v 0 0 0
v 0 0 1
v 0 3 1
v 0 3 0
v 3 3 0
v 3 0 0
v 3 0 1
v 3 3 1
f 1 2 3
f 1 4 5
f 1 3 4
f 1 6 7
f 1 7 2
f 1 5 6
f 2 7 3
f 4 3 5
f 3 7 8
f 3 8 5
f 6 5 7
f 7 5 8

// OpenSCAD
/* Warning, this is a very basic generator with a lot of approximation 
input data : [VDFN, 9HW, 3x3x1.0mm, 10, , A, C04-00685A]
generated by com.zoubworld.electronics.cad.model3d.Basic
Date : Sun Feb 15 10:50:49 CET 2026
*/

//body
color("black")
translate([0,0,0])
cube([3.0,3.0,1.0], center=false);
